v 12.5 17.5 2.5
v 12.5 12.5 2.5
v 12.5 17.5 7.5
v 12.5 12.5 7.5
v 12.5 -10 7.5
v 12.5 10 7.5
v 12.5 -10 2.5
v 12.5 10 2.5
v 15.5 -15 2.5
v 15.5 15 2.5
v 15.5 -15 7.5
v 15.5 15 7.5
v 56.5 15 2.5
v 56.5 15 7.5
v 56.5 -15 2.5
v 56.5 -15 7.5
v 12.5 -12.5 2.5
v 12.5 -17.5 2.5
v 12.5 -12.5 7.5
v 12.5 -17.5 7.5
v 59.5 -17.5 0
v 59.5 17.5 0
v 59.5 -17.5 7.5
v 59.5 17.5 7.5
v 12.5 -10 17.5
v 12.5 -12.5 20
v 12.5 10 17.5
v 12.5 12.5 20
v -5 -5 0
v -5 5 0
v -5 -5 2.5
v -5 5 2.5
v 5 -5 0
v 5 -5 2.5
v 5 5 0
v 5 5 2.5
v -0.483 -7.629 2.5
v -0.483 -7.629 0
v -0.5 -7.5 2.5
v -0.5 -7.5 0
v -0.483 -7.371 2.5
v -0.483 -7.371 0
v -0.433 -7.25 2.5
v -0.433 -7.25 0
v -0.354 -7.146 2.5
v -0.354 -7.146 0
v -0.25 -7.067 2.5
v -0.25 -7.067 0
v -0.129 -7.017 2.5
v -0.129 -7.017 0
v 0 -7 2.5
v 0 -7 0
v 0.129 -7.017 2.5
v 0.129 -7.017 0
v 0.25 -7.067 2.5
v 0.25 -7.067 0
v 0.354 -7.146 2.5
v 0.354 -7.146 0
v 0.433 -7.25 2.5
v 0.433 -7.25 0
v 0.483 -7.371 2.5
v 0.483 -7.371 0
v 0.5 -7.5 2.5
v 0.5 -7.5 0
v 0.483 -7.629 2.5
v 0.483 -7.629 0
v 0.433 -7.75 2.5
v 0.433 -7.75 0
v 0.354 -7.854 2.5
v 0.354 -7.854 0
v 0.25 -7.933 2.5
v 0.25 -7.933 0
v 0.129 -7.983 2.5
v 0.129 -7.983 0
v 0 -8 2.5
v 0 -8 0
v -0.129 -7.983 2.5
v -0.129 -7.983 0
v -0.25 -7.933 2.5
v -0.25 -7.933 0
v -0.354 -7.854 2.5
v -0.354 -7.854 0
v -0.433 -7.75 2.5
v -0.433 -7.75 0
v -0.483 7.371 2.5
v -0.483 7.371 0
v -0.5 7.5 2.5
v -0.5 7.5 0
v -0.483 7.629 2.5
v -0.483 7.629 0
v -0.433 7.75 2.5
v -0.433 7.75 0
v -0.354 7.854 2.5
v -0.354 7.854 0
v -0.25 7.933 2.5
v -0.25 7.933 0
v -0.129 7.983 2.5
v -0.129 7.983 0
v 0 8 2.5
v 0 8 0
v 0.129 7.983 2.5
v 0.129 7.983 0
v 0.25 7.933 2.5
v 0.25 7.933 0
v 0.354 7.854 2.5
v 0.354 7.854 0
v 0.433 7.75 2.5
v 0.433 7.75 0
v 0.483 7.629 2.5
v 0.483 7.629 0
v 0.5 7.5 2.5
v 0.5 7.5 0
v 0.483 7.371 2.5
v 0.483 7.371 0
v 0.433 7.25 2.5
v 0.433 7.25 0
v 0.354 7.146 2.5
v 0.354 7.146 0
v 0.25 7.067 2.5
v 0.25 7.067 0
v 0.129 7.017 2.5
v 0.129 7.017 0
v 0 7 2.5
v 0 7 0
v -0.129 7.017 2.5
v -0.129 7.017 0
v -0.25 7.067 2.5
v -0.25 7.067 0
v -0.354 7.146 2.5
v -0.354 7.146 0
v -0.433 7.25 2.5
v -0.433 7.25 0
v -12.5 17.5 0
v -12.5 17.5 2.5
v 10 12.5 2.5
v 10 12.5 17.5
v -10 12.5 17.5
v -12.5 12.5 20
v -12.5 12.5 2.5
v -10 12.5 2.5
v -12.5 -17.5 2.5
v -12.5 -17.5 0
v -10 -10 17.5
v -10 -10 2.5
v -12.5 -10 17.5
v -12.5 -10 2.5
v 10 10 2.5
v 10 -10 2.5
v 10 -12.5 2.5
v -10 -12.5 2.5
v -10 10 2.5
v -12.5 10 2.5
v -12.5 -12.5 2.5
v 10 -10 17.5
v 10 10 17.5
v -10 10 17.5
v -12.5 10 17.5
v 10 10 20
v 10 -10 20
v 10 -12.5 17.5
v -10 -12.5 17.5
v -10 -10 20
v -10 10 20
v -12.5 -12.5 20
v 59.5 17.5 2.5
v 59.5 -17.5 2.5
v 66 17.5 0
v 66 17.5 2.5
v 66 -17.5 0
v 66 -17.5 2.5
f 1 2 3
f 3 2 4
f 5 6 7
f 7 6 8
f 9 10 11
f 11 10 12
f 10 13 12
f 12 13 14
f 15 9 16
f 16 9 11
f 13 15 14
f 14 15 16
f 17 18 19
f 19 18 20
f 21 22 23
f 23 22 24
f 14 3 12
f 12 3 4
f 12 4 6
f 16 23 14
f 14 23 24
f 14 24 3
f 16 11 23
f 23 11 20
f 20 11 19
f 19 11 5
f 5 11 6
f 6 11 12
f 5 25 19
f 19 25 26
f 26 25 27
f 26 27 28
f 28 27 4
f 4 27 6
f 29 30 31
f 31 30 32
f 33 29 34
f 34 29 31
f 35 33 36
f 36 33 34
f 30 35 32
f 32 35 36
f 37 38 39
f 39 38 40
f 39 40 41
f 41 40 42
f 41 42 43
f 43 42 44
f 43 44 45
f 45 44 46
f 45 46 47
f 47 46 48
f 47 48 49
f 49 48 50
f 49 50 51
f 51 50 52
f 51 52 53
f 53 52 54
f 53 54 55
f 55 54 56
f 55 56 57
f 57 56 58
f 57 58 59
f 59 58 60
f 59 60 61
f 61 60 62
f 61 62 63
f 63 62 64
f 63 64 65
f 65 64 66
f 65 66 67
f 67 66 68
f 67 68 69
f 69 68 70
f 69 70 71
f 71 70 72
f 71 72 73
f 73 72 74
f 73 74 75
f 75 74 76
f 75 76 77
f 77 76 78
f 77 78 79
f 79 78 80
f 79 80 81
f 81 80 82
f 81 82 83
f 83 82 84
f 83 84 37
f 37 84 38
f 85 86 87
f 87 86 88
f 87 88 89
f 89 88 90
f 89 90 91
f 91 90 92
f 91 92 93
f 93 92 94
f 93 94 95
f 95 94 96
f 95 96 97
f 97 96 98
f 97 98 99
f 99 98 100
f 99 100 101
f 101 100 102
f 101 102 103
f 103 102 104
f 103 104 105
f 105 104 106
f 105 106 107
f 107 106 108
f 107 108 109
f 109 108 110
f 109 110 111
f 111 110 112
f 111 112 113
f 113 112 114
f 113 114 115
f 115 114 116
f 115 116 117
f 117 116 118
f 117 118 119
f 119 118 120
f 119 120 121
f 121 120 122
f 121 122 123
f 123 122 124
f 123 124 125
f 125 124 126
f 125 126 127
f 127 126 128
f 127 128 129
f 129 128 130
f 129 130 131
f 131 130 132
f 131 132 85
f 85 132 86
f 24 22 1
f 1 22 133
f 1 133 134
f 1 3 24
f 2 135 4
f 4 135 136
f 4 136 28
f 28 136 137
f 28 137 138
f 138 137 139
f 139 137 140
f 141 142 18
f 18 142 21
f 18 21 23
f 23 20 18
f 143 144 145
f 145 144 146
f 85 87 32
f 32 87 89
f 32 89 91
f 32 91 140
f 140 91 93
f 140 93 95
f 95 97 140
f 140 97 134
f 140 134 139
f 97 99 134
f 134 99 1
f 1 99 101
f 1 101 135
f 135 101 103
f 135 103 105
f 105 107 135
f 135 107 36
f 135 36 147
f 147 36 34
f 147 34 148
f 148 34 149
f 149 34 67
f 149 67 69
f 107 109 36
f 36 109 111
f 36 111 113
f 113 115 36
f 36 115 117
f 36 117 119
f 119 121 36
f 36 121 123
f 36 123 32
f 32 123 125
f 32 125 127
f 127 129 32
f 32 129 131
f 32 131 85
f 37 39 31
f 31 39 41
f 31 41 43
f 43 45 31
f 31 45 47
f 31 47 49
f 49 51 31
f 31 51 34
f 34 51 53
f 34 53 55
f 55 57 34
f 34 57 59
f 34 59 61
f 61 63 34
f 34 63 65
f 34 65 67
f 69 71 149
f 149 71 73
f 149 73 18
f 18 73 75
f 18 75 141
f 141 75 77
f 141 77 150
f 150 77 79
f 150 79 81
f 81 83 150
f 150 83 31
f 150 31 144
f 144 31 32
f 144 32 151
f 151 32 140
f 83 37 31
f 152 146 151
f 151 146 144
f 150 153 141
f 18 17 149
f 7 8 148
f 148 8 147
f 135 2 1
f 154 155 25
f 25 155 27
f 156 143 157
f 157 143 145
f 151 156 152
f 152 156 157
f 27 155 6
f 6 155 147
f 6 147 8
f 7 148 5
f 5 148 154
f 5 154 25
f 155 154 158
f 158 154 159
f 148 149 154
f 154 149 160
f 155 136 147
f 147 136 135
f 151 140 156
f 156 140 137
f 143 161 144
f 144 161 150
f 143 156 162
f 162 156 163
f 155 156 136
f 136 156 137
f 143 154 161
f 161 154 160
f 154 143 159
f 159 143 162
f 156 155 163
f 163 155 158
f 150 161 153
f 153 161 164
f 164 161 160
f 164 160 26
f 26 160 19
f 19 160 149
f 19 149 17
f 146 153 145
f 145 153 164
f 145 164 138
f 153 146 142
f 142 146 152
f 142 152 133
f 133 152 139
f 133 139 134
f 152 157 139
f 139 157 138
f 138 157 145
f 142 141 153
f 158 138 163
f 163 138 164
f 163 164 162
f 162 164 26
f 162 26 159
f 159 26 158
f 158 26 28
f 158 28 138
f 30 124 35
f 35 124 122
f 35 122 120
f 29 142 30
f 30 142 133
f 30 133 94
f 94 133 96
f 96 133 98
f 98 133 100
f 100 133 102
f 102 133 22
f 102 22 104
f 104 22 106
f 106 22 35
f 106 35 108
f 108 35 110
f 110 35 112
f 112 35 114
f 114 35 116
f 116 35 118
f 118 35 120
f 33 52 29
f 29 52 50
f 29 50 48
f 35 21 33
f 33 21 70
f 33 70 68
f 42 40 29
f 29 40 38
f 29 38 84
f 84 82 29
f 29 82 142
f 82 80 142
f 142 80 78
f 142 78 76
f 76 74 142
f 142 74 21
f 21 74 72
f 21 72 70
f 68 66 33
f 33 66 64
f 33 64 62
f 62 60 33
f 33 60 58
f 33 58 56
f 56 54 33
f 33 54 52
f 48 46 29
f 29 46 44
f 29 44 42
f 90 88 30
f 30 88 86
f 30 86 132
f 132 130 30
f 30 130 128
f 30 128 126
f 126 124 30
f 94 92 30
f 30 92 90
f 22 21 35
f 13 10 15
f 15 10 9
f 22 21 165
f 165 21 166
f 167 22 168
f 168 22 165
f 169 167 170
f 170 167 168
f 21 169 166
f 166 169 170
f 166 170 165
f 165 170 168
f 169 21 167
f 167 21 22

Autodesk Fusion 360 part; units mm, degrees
sketch "Sketch1" plane through (0, 0, 0) normal (0, 0, 1) x (1, 0, 0)
  line L0 (12.5, -12.5) -> (-12.5, -12.5)
  line L1 (-12.5, -12.5) -> (-12.5, 12.5)
  line L2 (-12.5, 12.5) -> (12.5, 12.5)
  line L3 (12.5, 12.5) -> (12.5, -12.5)
  line L4 (12.5, -12.5) -> (-12.5, 12.5) construction
  line L5 (-12.5, -12.5) -> (12.5, 12.5) construction
  line L6 (10, -10) -> (-10, -10)
  line L7 (-10, -10) -> (-10, 10)
  line L8 (-10, 10) -> (10, 10)
  line L9 (10, 10) -> (10, -10)
  line L10 (10, -10) -> (-10, 10) construction
  line L11 (-10, -10) -> (10, 10) construction
  line L12 (5, -5) -> (-5, -5)
  line L13 (-5, -5) -> (-5, 5)
  line L14 (-5, 5) -> (5, 5)
  line L15 (5, 5) -> (5, -5)
  line L16 (5, -5) -> (-5, 5) construction
  line L17 (-5, -5) -> (5, 5) construction
  line L18 (12.5, 0) -> (12.5, 17.5)
  line L19 (12.5, 17.5) -> (59.5, 17.5)
  line L20 (59.5, 17.5) -> (59.5, -17.5)
  line L21 (59.5, -17.5) -> (12.5, -17.5)
  line L22 (12.5, -17.5) -> (12.5, 17.5)
  line L23 (12.5, 0) -> (36, 0)
  line L24 (56.5, -15) -> (15.5, -15)
  line L25 (15.5, -15) -> (15.5, 15)
  line L26 (15.5, 15) -> (56.5, 15)
  line L27 (56.5, 15) -> (56.5, -15)
  line L28 (56.5, -15) -> (15.5, 15) construction
  line L29 (15.5, -15) -> (56.5, 15) construction
  line L30 (12.5, -17.5) -> (-12.5, -17.5)
  line L31 (-12.5, -17.5) -> (-12.5, 17.5)
  line L32 (-12.5, 17.5) -> (12.5, 17.5)
  line L33 (12.5, 17.5) -> (12.5, -17.5)
  line L34 (0, 0) -> (0, 7.5)
  line L35 (0, 7.5) -> (0, -7.5)
  circle A0 centre (0, 7.5) radius 0.5
  circle A1 centre (0, -7.5) radius 0.5
  line L36 (59.5, 17.5) -> (66, 17.5)
  line L37 (66, 17.5) -> (66, -17.5)
  line L38 (66, -17.5) -> (59.5, -17.5)
  line L39 (59.5, -17.5) -> (59.5, 17.5)
  point P0 (36, 0)
  dimension "d1" = 25
  dimension "d2" = 25
  dimension "d3" = 20
  dimension "d4" = 20
  dimension "d19" = 10
  dimension "d20" = 10
  dimension "d25" = 17.5
  dimension "d26" = 47
  dimension "d27" = 35
  dimension "d28" = 23.5
  dimension "d29" = 41
  dimension "d30" = 30
  dimension "d33" = 25
  dimension "d34" = 35
  dimension "d35" = 7.5
  dimension "d36" = 15
  dimension "d37" = 1
  dimension "d38" = 1
  dimension "d39" = 6.5
  dimension "d40" = 35
extrude "Extrude1" add sketch "Sketch1" along normal blind 20 contours L0 L1 L2 L3 L18 L22 L31 L33 makes body 1
sketch "Sketch2" plane through (0, -12.5, 0) normal (0, -1, 0) x (1, 0, 0)
  line L0 (-12.5, 0) -> (12.5, 0)
  line L1 (12.5, 0) -> (12.5, 20)
  line L2 (12.5, 20) -> (-12.5, 20)
  line L3 (-12.5, 20) -> (-12.5, 0)
  line L4 (0, 0) -> (0, 10)
  line L5 (10, 2.5) -> (-10, 2.5)
  line L6 (-10, 2.5) -> (-10, 17.5)
  line L7 (-10, 17.5) -> (10, 17.5)
  line L8 (10, 17.5) -> (10, 2.5)
  line L9 (10, 2.5) -> (-10, 17.5) construction
  line L10 (-10, 2.5) -> (10, 17.5) construction
  point P0 (0, 10)
  dimension "d7" = 10
  dimension "d8" = 20
  dimension "d9" = 15
extrude "Extrude2" cut sketch "Sketch2" against normal blind 25 contours L5 L6 L7 L8 bodies 1
sketch "Sketch3" plane through (12.5, 0, 0) normal (1, 0, 0) x (0, 1, 0)
  line L0 (-12.5, 0) -> (12.5, 0)
  line L1 (12.5, 0) -> (12.5, 20)
  line L2 (12.5, 20) -> (-12.5, 20)
  line L3 (-12.5, 20) -> (-12.5, 0)
  line L4 (0, 0) -> (0, 10)
  line L5 (10, 2.5) -> (-10, 2.5)
  line L6 (-10, 2.5) -> (-10, 17.5)
  line L7 (-10, 17.5) -> (10, 17.5)
  line L8 (10, 17.5) -> (10, 2.5)
  line L9 (10, 2.5) -> (-10, 17.5) construction
  line L10 (-10, 2.5) -> (10, 17.5) construction
  point P0 (0, 10)
  dimension "d12" = 10
  dimension "d13" = 20
  dimension "d14" = 15
extrude "Extrude3" cut sketch "Sketch3" against normal blind 25 contours L5 L6 L7 L8 bodies 1
extrude "Extrude4" add sketch "Sketch1" along normal blind 2.5 contours L0 L22 L30 L31 L33 | L24 L25 L26 L27 | L2 L18 L22 L31 L32 L33 | L20 L36 L37 L38 L39 | L6 L7 L8 L9 bodies 1 makes body 2 at (29.1667, -5, 0) makes body 3 at (61.6667, 5.8333, 0)
extrude "Extrude5" add sketch "Sketch1" along normal blind 7.5 contours L3 L18 L19 L20 L21 L22 L33 L39 bodies 1 2
